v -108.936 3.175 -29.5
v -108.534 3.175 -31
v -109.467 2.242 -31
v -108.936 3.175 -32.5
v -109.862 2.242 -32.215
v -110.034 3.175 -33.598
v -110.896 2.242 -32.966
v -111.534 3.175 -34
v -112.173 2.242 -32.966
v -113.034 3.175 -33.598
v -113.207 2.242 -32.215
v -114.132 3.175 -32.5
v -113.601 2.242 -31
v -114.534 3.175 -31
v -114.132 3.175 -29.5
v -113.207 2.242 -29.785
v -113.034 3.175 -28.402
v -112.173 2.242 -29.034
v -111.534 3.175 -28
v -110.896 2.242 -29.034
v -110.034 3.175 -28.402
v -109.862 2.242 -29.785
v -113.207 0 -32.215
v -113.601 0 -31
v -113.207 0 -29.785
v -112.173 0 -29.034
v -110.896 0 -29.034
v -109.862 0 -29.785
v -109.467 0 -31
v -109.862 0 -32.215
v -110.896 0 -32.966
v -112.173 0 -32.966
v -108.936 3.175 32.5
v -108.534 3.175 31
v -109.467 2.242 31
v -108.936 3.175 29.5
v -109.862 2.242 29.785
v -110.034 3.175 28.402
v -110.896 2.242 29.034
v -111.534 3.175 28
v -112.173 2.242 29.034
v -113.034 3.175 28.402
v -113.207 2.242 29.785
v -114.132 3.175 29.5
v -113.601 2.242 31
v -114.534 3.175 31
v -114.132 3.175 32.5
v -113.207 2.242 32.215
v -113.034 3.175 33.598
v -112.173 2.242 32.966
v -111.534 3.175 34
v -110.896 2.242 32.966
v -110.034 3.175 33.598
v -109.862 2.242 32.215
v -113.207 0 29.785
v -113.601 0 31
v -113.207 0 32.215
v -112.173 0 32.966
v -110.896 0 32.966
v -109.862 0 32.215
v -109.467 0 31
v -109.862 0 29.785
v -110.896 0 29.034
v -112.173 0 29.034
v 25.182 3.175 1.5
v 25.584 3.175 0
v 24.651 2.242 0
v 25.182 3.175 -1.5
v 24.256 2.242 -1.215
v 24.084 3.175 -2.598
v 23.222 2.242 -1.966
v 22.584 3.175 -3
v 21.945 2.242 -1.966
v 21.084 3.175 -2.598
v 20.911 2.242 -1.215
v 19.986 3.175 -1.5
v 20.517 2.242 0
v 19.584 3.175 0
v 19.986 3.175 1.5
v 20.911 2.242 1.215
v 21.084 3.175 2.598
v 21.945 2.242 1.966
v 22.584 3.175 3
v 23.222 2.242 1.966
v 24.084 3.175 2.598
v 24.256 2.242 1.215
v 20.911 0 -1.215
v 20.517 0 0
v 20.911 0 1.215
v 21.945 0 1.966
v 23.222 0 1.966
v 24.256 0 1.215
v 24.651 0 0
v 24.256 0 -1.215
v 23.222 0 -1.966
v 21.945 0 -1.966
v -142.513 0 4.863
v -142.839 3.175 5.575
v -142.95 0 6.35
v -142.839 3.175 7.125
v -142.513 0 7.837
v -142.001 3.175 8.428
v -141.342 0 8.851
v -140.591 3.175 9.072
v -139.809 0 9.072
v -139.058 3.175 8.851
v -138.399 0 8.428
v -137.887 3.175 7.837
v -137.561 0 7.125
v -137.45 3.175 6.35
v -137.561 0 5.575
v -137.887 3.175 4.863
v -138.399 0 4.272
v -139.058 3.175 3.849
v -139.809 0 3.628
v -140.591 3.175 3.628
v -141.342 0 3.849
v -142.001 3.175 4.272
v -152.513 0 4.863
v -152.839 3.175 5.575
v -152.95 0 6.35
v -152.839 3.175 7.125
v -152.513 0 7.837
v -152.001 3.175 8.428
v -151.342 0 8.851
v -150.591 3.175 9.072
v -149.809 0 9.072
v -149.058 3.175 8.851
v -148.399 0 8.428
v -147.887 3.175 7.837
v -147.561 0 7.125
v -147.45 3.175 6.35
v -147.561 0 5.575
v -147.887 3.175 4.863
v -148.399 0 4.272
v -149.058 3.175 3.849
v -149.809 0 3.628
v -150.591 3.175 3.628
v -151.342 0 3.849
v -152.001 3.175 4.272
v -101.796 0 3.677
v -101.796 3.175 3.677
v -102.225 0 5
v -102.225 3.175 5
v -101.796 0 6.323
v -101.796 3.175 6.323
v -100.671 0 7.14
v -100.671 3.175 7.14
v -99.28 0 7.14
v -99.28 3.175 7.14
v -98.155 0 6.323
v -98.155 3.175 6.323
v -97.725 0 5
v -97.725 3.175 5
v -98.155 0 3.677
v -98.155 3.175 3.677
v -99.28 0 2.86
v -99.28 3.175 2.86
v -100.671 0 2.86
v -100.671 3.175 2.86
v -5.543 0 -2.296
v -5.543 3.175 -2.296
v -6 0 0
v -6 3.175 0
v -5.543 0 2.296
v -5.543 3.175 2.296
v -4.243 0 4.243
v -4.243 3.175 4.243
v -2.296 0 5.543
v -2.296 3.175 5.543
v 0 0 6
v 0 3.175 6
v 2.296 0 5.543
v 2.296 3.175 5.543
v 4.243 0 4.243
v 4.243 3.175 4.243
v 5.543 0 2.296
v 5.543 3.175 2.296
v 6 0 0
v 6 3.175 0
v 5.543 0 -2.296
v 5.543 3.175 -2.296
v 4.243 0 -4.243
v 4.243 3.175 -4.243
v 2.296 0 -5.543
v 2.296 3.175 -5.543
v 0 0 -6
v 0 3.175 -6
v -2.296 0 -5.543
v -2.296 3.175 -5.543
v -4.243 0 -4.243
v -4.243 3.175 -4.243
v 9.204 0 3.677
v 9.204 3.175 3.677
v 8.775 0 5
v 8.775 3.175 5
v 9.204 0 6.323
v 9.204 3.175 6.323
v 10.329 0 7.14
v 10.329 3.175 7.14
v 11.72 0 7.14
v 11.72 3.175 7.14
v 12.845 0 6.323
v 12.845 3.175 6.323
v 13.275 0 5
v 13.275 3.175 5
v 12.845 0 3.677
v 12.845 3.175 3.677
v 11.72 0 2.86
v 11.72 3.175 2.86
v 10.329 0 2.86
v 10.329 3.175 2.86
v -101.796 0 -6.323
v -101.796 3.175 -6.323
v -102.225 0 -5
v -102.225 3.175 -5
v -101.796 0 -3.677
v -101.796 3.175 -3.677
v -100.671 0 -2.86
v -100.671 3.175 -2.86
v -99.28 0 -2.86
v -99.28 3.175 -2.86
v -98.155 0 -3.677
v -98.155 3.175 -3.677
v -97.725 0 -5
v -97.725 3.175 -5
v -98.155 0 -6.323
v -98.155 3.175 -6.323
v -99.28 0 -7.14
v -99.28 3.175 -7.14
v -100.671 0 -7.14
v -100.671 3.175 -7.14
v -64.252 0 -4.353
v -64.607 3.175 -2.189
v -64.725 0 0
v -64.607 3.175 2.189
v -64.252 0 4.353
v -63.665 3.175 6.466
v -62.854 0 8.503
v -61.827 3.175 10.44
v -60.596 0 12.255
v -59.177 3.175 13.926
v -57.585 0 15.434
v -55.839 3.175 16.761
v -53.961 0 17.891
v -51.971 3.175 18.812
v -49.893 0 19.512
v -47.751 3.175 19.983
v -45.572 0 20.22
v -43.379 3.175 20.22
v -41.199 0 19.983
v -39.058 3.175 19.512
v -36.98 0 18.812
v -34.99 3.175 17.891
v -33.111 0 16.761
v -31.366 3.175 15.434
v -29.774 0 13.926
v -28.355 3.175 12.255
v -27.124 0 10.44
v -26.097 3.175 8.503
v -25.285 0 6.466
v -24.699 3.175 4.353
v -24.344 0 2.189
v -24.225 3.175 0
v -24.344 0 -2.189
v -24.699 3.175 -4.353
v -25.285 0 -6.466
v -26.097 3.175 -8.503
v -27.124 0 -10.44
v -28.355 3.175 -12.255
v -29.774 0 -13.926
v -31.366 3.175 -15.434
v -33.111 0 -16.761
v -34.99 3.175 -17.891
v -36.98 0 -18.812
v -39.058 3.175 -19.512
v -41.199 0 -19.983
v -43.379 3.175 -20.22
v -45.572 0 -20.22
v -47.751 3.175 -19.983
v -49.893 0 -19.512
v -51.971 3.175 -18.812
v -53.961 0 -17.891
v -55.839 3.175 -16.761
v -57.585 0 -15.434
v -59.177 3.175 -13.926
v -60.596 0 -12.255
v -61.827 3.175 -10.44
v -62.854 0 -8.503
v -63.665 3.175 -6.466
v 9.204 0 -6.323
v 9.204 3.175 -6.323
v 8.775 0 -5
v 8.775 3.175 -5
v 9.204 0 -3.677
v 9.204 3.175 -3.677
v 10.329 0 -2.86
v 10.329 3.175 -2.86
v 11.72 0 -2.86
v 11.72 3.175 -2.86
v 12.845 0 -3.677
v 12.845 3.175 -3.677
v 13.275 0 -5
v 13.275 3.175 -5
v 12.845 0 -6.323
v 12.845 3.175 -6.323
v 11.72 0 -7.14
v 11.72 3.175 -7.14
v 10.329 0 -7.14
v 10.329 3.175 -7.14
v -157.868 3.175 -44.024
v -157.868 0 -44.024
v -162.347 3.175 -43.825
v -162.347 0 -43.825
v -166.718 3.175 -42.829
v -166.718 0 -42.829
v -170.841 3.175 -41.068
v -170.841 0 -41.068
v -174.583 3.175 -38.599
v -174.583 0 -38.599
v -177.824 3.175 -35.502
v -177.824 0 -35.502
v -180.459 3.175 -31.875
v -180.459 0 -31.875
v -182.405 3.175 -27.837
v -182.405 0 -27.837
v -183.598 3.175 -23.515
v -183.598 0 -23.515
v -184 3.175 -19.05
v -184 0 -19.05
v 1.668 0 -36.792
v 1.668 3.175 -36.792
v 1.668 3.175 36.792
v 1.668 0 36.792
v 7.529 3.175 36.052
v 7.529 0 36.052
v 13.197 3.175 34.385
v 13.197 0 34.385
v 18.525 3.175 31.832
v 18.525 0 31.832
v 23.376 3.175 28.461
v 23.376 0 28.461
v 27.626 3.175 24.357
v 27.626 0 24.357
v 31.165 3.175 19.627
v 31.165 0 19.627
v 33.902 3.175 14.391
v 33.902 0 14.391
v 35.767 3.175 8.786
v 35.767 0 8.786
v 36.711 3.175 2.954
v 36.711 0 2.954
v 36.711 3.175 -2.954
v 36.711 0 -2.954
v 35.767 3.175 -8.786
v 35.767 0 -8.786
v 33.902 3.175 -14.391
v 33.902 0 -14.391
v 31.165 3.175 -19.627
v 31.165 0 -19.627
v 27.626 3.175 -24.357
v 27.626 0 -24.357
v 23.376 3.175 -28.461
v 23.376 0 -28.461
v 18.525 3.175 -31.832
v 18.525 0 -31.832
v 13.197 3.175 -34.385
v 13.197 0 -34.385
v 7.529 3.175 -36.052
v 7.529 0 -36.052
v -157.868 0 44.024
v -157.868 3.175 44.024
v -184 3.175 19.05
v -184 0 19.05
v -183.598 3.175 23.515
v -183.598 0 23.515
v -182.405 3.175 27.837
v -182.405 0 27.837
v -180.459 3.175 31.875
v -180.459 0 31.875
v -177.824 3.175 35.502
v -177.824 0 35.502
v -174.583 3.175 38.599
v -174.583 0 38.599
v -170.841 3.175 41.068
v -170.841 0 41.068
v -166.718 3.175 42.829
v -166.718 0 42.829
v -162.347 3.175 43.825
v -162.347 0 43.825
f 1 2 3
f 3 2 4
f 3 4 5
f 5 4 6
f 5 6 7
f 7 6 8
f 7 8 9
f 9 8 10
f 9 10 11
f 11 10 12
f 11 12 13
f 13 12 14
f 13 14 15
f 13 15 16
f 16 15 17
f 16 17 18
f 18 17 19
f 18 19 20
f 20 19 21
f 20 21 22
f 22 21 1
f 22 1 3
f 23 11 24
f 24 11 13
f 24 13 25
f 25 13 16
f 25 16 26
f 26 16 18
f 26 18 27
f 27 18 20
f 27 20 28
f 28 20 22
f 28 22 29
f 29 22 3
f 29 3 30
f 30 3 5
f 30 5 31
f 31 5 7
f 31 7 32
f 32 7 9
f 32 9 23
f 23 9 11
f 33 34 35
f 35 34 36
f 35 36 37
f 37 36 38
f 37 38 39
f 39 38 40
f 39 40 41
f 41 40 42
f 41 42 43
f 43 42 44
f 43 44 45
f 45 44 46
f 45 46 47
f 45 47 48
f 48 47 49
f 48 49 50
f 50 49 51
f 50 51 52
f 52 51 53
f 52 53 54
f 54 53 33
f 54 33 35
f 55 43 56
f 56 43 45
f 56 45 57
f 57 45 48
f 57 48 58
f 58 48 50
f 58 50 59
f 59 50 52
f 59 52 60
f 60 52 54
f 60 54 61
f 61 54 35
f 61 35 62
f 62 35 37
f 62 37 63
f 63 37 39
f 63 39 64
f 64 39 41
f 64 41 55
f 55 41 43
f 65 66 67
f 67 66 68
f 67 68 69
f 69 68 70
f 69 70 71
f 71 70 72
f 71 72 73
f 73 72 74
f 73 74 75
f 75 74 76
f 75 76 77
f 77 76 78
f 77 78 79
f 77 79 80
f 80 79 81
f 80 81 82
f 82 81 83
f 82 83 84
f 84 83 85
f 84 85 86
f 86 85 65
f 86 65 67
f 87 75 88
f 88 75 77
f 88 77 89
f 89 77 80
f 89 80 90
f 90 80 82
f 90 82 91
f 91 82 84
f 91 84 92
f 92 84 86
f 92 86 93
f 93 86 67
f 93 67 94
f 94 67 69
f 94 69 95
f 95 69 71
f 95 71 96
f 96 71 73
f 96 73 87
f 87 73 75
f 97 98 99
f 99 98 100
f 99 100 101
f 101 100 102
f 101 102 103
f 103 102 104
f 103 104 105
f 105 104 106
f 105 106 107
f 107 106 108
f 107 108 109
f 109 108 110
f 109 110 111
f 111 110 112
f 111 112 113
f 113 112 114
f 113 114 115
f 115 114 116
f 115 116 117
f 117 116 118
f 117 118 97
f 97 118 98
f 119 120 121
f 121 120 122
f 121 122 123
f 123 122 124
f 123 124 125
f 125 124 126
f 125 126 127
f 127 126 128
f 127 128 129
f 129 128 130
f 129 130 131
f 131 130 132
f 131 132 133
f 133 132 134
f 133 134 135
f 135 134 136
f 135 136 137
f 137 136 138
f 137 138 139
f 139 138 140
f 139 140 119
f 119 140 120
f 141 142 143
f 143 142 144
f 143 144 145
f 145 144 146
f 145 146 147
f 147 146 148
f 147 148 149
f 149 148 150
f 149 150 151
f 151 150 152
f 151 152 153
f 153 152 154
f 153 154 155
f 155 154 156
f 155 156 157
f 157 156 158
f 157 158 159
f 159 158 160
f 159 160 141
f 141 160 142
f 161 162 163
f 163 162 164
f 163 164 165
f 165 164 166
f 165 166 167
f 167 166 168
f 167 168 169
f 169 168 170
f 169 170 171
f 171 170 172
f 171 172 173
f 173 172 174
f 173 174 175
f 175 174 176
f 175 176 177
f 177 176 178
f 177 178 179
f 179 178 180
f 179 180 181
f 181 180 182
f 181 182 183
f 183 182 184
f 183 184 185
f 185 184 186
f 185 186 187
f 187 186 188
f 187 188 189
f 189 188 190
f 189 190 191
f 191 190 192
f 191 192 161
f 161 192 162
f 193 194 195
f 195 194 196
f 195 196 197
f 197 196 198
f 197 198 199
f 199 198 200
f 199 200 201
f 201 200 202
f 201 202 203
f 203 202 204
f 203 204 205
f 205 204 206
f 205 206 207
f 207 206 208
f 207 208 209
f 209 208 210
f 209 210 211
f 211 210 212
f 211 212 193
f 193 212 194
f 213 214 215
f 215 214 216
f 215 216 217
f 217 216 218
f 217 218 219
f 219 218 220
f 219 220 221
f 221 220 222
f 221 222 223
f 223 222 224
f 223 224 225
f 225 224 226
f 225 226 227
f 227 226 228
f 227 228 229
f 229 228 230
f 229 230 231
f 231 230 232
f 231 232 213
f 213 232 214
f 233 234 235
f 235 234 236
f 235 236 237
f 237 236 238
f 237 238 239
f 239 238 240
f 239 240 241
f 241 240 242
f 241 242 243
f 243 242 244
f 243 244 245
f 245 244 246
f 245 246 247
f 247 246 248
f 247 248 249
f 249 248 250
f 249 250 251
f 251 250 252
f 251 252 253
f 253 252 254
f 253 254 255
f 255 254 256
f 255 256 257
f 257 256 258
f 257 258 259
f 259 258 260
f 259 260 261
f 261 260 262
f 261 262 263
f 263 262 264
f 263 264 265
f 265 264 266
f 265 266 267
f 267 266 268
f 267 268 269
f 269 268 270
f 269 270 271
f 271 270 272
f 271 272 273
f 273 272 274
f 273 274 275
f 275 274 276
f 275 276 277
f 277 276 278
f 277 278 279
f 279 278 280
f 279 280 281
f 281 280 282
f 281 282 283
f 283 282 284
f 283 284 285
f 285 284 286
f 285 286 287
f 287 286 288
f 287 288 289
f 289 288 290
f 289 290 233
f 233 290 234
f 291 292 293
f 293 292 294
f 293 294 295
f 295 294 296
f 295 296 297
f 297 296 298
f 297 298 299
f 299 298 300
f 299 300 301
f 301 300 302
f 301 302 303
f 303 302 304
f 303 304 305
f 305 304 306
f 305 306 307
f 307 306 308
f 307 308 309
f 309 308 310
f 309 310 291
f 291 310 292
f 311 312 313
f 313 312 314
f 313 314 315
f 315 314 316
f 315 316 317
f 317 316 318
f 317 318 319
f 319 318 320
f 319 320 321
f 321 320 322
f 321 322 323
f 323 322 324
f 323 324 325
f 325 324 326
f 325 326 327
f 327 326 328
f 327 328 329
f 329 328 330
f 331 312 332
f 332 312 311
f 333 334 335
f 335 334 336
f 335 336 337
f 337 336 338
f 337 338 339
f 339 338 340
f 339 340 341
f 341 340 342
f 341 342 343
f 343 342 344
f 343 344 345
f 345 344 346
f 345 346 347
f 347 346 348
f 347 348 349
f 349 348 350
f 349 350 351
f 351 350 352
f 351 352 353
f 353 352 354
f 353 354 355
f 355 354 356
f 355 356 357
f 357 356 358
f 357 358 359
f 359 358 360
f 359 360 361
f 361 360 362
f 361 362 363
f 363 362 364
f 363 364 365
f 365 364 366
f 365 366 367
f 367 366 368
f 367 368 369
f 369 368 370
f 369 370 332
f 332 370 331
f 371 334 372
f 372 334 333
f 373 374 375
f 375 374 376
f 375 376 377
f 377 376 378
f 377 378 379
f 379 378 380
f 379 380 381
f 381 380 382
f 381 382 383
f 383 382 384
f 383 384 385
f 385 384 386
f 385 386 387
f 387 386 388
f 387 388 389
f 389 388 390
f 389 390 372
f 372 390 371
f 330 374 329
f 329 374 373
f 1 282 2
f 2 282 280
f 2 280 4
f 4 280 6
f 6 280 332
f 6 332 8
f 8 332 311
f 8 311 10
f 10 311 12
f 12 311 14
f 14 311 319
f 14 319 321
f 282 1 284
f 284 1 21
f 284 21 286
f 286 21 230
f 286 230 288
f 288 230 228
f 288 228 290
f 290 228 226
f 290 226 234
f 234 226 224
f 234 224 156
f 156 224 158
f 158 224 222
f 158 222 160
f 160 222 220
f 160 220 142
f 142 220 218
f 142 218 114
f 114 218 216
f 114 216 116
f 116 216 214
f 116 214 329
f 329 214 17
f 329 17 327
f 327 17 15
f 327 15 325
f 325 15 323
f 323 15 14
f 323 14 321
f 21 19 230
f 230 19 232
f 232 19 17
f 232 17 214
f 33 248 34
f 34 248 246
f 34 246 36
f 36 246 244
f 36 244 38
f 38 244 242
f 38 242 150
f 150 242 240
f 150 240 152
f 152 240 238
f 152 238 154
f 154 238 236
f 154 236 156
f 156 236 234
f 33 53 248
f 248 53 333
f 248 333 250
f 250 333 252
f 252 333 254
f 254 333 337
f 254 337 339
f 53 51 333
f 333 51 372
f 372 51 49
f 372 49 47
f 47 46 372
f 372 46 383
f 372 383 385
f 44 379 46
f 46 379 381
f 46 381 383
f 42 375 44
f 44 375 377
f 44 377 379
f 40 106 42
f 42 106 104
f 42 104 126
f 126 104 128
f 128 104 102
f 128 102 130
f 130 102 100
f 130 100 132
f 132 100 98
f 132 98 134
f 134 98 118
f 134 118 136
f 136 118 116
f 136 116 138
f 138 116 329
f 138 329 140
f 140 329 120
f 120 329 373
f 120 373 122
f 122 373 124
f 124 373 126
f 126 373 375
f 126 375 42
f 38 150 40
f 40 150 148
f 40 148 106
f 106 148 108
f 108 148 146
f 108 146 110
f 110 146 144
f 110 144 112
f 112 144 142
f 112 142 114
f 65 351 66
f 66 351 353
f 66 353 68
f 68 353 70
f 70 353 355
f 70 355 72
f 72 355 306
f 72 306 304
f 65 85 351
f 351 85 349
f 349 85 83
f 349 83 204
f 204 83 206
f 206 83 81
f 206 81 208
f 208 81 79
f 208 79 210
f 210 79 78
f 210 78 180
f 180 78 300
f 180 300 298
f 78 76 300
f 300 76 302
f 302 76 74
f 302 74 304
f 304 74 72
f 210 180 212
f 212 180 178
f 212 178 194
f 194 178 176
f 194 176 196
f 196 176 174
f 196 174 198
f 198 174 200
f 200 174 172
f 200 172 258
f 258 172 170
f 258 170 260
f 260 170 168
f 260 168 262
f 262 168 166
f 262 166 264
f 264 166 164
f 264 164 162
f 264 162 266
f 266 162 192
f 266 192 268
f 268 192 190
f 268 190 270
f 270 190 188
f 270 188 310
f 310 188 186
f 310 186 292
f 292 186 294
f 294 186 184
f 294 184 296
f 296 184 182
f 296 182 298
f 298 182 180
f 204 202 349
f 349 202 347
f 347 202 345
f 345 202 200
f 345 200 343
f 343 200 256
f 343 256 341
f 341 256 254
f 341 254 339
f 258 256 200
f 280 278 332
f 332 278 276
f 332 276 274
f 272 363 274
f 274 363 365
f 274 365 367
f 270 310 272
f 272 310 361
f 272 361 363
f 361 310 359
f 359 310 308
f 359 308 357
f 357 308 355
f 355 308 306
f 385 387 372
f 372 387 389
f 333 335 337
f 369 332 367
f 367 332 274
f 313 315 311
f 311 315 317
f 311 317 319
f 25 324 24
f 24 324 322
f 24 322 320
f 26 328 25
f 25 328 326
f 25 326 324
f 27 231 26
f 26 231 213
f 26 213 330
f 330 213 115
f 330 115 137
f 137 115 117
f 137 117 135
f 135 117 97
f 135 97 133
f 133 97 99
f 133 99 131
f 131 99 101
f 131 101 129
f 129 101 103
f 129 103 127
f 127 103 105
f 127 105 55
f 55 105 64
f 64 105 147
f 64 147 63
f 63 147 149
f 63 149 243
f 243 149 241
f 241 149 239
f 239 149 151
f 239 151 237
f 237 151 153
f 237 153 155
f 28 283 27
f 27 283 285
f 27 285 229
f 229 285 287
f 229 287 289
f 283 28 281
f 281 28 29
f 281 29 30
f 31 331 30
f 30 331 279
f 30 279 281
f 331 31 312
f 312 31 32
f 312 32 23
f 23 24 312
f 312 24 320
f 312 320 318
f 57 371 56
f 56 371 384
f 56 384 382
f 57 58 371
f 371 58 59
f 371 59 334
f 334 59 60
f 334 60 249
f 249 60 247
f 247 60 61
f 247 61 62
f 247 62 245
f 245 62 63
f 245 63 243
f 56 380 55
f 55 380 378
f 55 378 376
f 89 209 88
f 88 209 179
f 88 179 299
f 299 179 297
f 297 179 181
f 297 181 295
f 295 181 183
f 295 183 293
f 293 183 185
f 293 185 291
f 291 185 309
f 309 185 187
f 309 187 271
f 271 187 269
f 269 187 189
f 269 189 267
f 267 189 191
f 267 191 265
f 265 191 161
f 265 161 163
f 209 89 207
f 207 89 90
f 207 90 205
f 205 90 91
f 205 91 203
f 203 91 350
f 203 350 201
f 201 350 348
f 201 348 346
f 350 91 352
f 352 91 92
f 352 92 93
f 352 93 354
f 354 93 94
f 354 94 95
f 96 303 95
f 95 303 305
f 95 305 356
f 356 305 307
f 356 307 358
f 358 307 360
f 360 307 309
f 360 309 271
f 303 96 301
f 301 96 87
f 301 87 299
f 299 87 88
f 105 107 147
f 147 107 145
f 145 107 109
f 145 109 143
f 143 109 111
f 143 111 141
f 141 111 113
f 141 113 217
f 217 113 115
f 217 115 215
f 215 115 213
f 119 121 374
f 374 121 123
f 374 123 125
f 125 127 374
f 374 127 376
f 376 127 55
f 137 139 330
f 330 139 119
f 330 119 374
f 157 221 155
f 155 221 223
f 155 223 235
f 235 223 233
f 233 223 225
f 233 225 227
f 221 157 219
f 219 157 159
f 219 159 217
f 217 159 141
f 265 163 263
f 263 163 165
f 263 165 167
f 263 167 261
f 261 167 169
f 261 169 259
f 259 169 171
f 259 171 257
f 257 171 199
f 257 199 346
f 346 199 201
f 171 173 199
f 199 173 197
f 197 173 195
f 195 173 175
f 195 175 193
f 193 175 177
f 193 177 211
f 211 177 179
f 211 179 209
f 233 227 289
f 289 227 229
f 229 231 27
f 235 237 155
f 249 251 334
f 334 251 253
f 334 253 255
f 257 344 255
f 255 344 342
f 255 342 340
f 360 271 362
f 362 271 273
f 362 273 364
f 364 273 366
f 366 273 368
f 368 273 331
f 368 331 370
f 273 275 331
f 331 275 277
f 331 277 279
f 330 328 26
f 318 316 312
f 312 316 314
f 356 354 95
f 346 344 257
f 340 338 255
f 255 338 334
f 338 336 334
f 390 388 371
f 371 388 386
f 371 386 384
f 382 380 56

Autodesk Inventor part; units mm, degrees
ref_plane "YZ Plane" through (0, 0, 0) normal (1, 0, 0) x (0, 1, 0)
ref_plane "XZ Plane" through (0, 0, 0) normal (0, 1, 0) x (-1, 0, 0)
ref_plane "XY Plane" through (0, 0, 0) normal (0, 0, 1) x (1, 0, 0)
sketch "Sketch1" plane through (0, 0, 0) normal (0, 1, 0) x (-1, 0, 0)
  arc A0 (-1.6679, 36.7922) -> (-1.6679, -36.7922) centre (0, 0) ccw
  arc A1 (157.8679, -44.0244) -> (184, -19.05) centre (159, -19.05) ccw
  arc A2 (184, 19.05) -> (157.8679, 44.0244) centre (159, 19.05) ccw
  line L0 (157.8679, -44.0244) -> (-1.6679, -36.7922)
  line L1 (157.8679, 44.0244) -> (-1.6679, 36.7922)
  line L2 (184, -19.05) -> (184, 19.05)
  line L3 (0, 0) -> (1115.1702, 0)
  dimension "d0" = 50
  dimension "d1" = 159
  dimension "d2" = 38.1
  dimension "d3" = 36.83
extrude "Main" add sketch "Sketch1" along normal blind 3.175
sketch "Sketch2" plane through (0, 3.175, 0) normal (0, 1, 0) x (1, 0, 0)
  circle A0 centre (0, 0) radius 6
  circle A1 centre (-44.4754, 0) radius 20.25
  arc A2 (-184, -19.05) -> (-157.8679, -44.0244) centre (-159, -19.05) ccw projected
  arc A3 (-157.8679, 44.0244) -> (-184, 19.05) centre (-159, 19.05) ccw projected
  line L0 (0, 0) -> (-245.2379, 0)
  circle A4 centre (-44.4754, 0) radius 47.5
  line L1 (3.0246, 0) -> (11.0246, 0)
  line L2 (11.0246, 0) -> (11.0246, 5)
  line L3 (11.0246, 5) -> (11.0246, -5)
  line L4 (-91.9754, 0) -> (-99.9754, 0)
  line L5 (-99.9754, 0) -> (-99.9754, 5)
  line L6 (-99.9754, 5) -> (-99.9754, -5)
  circle A5 centre (-99.9754, 5) radius 2.25
  circle A6 centre (-99.9754, -5) radius 2.25
  circle A7 centre (11.0246, 5) radius 2.25
  circle A8 centre (11.0246, -5) radius 2.25
  dimension "d6" = 40.5
  dimension "d40" = 12
  dimension "d41" = 44.4754
  dimension "d77" = 95
  dimension "d78" = 8
  dimension "d79" = 5
  dimension "d80" = 10
  dimension "d81" = 8
  dimension "d82" = 5
  dimension "d83" = 10
  dimension "d84" = 4.5
  dimension "d85" = 4.5
  dimension "d86" = 4.5
  dimension "d87" = 4.5
extrude "Axis Holes" cut sketch "Sketch2" against normal through all contours L1 A4 A0 | A6 | A5 | A0 A4 L1 | A7 | A8 | A4 A0 | L0 A1 | A1 L0
sketch "Sketch5" plane through (0, 3.175, 0) normal (0, 1, 0) x (1, 0, 0)
  line L0 (-133.2, -6.35) -> (-133.2, 29.1375) construction
  line L1 (-184, 19.05) -> (-184, -19.05) construction
  circle A0 centre (-140.2, -6.35) radius 2.75
  circle A1 centre (-150.2, -6.35) radius 2.75
  point P0 (0, 0)
  dimension "d43" = 50.8
  dimension "d44" = 7
  dimension "d45" = 10
  dimension "d46" = 5.5
extrude "Extrusion6" cut sketch "Sketch5" against normal through all
sketch "Sketch9" plane through (0, 3.175, 0) normal (0, 1, 0) x (1, 0, 0)
  circle A0 centre (-44.4754, 0) radius 20.25 projected
  point P0 (0, 0)
  point P1 (-12.3688, -17.5481)
  point P2 (-111.5344, -31)
  point P3 (-111.5344, 31)
  point P4 (22.5836, 0)
  dimension "d73" = 67.059
  dimension "d74" = 67.059
  dimension "d75" = 31
  dimension "d76" = 31
hole "Hole1" at (-111.5344, 3.175, 31) at (-111.5344, 3.175, -31) at (22.5836, 3.175, 0) direction (0, -1, 0) diameter 4.134 end through all countersink diameter 6 countersink angle 90 thread size "M5x0.8" class "6H" standard "ISO Metric profile"
properties part number "Wrist Side Brase" material "Aluminum 6061"
